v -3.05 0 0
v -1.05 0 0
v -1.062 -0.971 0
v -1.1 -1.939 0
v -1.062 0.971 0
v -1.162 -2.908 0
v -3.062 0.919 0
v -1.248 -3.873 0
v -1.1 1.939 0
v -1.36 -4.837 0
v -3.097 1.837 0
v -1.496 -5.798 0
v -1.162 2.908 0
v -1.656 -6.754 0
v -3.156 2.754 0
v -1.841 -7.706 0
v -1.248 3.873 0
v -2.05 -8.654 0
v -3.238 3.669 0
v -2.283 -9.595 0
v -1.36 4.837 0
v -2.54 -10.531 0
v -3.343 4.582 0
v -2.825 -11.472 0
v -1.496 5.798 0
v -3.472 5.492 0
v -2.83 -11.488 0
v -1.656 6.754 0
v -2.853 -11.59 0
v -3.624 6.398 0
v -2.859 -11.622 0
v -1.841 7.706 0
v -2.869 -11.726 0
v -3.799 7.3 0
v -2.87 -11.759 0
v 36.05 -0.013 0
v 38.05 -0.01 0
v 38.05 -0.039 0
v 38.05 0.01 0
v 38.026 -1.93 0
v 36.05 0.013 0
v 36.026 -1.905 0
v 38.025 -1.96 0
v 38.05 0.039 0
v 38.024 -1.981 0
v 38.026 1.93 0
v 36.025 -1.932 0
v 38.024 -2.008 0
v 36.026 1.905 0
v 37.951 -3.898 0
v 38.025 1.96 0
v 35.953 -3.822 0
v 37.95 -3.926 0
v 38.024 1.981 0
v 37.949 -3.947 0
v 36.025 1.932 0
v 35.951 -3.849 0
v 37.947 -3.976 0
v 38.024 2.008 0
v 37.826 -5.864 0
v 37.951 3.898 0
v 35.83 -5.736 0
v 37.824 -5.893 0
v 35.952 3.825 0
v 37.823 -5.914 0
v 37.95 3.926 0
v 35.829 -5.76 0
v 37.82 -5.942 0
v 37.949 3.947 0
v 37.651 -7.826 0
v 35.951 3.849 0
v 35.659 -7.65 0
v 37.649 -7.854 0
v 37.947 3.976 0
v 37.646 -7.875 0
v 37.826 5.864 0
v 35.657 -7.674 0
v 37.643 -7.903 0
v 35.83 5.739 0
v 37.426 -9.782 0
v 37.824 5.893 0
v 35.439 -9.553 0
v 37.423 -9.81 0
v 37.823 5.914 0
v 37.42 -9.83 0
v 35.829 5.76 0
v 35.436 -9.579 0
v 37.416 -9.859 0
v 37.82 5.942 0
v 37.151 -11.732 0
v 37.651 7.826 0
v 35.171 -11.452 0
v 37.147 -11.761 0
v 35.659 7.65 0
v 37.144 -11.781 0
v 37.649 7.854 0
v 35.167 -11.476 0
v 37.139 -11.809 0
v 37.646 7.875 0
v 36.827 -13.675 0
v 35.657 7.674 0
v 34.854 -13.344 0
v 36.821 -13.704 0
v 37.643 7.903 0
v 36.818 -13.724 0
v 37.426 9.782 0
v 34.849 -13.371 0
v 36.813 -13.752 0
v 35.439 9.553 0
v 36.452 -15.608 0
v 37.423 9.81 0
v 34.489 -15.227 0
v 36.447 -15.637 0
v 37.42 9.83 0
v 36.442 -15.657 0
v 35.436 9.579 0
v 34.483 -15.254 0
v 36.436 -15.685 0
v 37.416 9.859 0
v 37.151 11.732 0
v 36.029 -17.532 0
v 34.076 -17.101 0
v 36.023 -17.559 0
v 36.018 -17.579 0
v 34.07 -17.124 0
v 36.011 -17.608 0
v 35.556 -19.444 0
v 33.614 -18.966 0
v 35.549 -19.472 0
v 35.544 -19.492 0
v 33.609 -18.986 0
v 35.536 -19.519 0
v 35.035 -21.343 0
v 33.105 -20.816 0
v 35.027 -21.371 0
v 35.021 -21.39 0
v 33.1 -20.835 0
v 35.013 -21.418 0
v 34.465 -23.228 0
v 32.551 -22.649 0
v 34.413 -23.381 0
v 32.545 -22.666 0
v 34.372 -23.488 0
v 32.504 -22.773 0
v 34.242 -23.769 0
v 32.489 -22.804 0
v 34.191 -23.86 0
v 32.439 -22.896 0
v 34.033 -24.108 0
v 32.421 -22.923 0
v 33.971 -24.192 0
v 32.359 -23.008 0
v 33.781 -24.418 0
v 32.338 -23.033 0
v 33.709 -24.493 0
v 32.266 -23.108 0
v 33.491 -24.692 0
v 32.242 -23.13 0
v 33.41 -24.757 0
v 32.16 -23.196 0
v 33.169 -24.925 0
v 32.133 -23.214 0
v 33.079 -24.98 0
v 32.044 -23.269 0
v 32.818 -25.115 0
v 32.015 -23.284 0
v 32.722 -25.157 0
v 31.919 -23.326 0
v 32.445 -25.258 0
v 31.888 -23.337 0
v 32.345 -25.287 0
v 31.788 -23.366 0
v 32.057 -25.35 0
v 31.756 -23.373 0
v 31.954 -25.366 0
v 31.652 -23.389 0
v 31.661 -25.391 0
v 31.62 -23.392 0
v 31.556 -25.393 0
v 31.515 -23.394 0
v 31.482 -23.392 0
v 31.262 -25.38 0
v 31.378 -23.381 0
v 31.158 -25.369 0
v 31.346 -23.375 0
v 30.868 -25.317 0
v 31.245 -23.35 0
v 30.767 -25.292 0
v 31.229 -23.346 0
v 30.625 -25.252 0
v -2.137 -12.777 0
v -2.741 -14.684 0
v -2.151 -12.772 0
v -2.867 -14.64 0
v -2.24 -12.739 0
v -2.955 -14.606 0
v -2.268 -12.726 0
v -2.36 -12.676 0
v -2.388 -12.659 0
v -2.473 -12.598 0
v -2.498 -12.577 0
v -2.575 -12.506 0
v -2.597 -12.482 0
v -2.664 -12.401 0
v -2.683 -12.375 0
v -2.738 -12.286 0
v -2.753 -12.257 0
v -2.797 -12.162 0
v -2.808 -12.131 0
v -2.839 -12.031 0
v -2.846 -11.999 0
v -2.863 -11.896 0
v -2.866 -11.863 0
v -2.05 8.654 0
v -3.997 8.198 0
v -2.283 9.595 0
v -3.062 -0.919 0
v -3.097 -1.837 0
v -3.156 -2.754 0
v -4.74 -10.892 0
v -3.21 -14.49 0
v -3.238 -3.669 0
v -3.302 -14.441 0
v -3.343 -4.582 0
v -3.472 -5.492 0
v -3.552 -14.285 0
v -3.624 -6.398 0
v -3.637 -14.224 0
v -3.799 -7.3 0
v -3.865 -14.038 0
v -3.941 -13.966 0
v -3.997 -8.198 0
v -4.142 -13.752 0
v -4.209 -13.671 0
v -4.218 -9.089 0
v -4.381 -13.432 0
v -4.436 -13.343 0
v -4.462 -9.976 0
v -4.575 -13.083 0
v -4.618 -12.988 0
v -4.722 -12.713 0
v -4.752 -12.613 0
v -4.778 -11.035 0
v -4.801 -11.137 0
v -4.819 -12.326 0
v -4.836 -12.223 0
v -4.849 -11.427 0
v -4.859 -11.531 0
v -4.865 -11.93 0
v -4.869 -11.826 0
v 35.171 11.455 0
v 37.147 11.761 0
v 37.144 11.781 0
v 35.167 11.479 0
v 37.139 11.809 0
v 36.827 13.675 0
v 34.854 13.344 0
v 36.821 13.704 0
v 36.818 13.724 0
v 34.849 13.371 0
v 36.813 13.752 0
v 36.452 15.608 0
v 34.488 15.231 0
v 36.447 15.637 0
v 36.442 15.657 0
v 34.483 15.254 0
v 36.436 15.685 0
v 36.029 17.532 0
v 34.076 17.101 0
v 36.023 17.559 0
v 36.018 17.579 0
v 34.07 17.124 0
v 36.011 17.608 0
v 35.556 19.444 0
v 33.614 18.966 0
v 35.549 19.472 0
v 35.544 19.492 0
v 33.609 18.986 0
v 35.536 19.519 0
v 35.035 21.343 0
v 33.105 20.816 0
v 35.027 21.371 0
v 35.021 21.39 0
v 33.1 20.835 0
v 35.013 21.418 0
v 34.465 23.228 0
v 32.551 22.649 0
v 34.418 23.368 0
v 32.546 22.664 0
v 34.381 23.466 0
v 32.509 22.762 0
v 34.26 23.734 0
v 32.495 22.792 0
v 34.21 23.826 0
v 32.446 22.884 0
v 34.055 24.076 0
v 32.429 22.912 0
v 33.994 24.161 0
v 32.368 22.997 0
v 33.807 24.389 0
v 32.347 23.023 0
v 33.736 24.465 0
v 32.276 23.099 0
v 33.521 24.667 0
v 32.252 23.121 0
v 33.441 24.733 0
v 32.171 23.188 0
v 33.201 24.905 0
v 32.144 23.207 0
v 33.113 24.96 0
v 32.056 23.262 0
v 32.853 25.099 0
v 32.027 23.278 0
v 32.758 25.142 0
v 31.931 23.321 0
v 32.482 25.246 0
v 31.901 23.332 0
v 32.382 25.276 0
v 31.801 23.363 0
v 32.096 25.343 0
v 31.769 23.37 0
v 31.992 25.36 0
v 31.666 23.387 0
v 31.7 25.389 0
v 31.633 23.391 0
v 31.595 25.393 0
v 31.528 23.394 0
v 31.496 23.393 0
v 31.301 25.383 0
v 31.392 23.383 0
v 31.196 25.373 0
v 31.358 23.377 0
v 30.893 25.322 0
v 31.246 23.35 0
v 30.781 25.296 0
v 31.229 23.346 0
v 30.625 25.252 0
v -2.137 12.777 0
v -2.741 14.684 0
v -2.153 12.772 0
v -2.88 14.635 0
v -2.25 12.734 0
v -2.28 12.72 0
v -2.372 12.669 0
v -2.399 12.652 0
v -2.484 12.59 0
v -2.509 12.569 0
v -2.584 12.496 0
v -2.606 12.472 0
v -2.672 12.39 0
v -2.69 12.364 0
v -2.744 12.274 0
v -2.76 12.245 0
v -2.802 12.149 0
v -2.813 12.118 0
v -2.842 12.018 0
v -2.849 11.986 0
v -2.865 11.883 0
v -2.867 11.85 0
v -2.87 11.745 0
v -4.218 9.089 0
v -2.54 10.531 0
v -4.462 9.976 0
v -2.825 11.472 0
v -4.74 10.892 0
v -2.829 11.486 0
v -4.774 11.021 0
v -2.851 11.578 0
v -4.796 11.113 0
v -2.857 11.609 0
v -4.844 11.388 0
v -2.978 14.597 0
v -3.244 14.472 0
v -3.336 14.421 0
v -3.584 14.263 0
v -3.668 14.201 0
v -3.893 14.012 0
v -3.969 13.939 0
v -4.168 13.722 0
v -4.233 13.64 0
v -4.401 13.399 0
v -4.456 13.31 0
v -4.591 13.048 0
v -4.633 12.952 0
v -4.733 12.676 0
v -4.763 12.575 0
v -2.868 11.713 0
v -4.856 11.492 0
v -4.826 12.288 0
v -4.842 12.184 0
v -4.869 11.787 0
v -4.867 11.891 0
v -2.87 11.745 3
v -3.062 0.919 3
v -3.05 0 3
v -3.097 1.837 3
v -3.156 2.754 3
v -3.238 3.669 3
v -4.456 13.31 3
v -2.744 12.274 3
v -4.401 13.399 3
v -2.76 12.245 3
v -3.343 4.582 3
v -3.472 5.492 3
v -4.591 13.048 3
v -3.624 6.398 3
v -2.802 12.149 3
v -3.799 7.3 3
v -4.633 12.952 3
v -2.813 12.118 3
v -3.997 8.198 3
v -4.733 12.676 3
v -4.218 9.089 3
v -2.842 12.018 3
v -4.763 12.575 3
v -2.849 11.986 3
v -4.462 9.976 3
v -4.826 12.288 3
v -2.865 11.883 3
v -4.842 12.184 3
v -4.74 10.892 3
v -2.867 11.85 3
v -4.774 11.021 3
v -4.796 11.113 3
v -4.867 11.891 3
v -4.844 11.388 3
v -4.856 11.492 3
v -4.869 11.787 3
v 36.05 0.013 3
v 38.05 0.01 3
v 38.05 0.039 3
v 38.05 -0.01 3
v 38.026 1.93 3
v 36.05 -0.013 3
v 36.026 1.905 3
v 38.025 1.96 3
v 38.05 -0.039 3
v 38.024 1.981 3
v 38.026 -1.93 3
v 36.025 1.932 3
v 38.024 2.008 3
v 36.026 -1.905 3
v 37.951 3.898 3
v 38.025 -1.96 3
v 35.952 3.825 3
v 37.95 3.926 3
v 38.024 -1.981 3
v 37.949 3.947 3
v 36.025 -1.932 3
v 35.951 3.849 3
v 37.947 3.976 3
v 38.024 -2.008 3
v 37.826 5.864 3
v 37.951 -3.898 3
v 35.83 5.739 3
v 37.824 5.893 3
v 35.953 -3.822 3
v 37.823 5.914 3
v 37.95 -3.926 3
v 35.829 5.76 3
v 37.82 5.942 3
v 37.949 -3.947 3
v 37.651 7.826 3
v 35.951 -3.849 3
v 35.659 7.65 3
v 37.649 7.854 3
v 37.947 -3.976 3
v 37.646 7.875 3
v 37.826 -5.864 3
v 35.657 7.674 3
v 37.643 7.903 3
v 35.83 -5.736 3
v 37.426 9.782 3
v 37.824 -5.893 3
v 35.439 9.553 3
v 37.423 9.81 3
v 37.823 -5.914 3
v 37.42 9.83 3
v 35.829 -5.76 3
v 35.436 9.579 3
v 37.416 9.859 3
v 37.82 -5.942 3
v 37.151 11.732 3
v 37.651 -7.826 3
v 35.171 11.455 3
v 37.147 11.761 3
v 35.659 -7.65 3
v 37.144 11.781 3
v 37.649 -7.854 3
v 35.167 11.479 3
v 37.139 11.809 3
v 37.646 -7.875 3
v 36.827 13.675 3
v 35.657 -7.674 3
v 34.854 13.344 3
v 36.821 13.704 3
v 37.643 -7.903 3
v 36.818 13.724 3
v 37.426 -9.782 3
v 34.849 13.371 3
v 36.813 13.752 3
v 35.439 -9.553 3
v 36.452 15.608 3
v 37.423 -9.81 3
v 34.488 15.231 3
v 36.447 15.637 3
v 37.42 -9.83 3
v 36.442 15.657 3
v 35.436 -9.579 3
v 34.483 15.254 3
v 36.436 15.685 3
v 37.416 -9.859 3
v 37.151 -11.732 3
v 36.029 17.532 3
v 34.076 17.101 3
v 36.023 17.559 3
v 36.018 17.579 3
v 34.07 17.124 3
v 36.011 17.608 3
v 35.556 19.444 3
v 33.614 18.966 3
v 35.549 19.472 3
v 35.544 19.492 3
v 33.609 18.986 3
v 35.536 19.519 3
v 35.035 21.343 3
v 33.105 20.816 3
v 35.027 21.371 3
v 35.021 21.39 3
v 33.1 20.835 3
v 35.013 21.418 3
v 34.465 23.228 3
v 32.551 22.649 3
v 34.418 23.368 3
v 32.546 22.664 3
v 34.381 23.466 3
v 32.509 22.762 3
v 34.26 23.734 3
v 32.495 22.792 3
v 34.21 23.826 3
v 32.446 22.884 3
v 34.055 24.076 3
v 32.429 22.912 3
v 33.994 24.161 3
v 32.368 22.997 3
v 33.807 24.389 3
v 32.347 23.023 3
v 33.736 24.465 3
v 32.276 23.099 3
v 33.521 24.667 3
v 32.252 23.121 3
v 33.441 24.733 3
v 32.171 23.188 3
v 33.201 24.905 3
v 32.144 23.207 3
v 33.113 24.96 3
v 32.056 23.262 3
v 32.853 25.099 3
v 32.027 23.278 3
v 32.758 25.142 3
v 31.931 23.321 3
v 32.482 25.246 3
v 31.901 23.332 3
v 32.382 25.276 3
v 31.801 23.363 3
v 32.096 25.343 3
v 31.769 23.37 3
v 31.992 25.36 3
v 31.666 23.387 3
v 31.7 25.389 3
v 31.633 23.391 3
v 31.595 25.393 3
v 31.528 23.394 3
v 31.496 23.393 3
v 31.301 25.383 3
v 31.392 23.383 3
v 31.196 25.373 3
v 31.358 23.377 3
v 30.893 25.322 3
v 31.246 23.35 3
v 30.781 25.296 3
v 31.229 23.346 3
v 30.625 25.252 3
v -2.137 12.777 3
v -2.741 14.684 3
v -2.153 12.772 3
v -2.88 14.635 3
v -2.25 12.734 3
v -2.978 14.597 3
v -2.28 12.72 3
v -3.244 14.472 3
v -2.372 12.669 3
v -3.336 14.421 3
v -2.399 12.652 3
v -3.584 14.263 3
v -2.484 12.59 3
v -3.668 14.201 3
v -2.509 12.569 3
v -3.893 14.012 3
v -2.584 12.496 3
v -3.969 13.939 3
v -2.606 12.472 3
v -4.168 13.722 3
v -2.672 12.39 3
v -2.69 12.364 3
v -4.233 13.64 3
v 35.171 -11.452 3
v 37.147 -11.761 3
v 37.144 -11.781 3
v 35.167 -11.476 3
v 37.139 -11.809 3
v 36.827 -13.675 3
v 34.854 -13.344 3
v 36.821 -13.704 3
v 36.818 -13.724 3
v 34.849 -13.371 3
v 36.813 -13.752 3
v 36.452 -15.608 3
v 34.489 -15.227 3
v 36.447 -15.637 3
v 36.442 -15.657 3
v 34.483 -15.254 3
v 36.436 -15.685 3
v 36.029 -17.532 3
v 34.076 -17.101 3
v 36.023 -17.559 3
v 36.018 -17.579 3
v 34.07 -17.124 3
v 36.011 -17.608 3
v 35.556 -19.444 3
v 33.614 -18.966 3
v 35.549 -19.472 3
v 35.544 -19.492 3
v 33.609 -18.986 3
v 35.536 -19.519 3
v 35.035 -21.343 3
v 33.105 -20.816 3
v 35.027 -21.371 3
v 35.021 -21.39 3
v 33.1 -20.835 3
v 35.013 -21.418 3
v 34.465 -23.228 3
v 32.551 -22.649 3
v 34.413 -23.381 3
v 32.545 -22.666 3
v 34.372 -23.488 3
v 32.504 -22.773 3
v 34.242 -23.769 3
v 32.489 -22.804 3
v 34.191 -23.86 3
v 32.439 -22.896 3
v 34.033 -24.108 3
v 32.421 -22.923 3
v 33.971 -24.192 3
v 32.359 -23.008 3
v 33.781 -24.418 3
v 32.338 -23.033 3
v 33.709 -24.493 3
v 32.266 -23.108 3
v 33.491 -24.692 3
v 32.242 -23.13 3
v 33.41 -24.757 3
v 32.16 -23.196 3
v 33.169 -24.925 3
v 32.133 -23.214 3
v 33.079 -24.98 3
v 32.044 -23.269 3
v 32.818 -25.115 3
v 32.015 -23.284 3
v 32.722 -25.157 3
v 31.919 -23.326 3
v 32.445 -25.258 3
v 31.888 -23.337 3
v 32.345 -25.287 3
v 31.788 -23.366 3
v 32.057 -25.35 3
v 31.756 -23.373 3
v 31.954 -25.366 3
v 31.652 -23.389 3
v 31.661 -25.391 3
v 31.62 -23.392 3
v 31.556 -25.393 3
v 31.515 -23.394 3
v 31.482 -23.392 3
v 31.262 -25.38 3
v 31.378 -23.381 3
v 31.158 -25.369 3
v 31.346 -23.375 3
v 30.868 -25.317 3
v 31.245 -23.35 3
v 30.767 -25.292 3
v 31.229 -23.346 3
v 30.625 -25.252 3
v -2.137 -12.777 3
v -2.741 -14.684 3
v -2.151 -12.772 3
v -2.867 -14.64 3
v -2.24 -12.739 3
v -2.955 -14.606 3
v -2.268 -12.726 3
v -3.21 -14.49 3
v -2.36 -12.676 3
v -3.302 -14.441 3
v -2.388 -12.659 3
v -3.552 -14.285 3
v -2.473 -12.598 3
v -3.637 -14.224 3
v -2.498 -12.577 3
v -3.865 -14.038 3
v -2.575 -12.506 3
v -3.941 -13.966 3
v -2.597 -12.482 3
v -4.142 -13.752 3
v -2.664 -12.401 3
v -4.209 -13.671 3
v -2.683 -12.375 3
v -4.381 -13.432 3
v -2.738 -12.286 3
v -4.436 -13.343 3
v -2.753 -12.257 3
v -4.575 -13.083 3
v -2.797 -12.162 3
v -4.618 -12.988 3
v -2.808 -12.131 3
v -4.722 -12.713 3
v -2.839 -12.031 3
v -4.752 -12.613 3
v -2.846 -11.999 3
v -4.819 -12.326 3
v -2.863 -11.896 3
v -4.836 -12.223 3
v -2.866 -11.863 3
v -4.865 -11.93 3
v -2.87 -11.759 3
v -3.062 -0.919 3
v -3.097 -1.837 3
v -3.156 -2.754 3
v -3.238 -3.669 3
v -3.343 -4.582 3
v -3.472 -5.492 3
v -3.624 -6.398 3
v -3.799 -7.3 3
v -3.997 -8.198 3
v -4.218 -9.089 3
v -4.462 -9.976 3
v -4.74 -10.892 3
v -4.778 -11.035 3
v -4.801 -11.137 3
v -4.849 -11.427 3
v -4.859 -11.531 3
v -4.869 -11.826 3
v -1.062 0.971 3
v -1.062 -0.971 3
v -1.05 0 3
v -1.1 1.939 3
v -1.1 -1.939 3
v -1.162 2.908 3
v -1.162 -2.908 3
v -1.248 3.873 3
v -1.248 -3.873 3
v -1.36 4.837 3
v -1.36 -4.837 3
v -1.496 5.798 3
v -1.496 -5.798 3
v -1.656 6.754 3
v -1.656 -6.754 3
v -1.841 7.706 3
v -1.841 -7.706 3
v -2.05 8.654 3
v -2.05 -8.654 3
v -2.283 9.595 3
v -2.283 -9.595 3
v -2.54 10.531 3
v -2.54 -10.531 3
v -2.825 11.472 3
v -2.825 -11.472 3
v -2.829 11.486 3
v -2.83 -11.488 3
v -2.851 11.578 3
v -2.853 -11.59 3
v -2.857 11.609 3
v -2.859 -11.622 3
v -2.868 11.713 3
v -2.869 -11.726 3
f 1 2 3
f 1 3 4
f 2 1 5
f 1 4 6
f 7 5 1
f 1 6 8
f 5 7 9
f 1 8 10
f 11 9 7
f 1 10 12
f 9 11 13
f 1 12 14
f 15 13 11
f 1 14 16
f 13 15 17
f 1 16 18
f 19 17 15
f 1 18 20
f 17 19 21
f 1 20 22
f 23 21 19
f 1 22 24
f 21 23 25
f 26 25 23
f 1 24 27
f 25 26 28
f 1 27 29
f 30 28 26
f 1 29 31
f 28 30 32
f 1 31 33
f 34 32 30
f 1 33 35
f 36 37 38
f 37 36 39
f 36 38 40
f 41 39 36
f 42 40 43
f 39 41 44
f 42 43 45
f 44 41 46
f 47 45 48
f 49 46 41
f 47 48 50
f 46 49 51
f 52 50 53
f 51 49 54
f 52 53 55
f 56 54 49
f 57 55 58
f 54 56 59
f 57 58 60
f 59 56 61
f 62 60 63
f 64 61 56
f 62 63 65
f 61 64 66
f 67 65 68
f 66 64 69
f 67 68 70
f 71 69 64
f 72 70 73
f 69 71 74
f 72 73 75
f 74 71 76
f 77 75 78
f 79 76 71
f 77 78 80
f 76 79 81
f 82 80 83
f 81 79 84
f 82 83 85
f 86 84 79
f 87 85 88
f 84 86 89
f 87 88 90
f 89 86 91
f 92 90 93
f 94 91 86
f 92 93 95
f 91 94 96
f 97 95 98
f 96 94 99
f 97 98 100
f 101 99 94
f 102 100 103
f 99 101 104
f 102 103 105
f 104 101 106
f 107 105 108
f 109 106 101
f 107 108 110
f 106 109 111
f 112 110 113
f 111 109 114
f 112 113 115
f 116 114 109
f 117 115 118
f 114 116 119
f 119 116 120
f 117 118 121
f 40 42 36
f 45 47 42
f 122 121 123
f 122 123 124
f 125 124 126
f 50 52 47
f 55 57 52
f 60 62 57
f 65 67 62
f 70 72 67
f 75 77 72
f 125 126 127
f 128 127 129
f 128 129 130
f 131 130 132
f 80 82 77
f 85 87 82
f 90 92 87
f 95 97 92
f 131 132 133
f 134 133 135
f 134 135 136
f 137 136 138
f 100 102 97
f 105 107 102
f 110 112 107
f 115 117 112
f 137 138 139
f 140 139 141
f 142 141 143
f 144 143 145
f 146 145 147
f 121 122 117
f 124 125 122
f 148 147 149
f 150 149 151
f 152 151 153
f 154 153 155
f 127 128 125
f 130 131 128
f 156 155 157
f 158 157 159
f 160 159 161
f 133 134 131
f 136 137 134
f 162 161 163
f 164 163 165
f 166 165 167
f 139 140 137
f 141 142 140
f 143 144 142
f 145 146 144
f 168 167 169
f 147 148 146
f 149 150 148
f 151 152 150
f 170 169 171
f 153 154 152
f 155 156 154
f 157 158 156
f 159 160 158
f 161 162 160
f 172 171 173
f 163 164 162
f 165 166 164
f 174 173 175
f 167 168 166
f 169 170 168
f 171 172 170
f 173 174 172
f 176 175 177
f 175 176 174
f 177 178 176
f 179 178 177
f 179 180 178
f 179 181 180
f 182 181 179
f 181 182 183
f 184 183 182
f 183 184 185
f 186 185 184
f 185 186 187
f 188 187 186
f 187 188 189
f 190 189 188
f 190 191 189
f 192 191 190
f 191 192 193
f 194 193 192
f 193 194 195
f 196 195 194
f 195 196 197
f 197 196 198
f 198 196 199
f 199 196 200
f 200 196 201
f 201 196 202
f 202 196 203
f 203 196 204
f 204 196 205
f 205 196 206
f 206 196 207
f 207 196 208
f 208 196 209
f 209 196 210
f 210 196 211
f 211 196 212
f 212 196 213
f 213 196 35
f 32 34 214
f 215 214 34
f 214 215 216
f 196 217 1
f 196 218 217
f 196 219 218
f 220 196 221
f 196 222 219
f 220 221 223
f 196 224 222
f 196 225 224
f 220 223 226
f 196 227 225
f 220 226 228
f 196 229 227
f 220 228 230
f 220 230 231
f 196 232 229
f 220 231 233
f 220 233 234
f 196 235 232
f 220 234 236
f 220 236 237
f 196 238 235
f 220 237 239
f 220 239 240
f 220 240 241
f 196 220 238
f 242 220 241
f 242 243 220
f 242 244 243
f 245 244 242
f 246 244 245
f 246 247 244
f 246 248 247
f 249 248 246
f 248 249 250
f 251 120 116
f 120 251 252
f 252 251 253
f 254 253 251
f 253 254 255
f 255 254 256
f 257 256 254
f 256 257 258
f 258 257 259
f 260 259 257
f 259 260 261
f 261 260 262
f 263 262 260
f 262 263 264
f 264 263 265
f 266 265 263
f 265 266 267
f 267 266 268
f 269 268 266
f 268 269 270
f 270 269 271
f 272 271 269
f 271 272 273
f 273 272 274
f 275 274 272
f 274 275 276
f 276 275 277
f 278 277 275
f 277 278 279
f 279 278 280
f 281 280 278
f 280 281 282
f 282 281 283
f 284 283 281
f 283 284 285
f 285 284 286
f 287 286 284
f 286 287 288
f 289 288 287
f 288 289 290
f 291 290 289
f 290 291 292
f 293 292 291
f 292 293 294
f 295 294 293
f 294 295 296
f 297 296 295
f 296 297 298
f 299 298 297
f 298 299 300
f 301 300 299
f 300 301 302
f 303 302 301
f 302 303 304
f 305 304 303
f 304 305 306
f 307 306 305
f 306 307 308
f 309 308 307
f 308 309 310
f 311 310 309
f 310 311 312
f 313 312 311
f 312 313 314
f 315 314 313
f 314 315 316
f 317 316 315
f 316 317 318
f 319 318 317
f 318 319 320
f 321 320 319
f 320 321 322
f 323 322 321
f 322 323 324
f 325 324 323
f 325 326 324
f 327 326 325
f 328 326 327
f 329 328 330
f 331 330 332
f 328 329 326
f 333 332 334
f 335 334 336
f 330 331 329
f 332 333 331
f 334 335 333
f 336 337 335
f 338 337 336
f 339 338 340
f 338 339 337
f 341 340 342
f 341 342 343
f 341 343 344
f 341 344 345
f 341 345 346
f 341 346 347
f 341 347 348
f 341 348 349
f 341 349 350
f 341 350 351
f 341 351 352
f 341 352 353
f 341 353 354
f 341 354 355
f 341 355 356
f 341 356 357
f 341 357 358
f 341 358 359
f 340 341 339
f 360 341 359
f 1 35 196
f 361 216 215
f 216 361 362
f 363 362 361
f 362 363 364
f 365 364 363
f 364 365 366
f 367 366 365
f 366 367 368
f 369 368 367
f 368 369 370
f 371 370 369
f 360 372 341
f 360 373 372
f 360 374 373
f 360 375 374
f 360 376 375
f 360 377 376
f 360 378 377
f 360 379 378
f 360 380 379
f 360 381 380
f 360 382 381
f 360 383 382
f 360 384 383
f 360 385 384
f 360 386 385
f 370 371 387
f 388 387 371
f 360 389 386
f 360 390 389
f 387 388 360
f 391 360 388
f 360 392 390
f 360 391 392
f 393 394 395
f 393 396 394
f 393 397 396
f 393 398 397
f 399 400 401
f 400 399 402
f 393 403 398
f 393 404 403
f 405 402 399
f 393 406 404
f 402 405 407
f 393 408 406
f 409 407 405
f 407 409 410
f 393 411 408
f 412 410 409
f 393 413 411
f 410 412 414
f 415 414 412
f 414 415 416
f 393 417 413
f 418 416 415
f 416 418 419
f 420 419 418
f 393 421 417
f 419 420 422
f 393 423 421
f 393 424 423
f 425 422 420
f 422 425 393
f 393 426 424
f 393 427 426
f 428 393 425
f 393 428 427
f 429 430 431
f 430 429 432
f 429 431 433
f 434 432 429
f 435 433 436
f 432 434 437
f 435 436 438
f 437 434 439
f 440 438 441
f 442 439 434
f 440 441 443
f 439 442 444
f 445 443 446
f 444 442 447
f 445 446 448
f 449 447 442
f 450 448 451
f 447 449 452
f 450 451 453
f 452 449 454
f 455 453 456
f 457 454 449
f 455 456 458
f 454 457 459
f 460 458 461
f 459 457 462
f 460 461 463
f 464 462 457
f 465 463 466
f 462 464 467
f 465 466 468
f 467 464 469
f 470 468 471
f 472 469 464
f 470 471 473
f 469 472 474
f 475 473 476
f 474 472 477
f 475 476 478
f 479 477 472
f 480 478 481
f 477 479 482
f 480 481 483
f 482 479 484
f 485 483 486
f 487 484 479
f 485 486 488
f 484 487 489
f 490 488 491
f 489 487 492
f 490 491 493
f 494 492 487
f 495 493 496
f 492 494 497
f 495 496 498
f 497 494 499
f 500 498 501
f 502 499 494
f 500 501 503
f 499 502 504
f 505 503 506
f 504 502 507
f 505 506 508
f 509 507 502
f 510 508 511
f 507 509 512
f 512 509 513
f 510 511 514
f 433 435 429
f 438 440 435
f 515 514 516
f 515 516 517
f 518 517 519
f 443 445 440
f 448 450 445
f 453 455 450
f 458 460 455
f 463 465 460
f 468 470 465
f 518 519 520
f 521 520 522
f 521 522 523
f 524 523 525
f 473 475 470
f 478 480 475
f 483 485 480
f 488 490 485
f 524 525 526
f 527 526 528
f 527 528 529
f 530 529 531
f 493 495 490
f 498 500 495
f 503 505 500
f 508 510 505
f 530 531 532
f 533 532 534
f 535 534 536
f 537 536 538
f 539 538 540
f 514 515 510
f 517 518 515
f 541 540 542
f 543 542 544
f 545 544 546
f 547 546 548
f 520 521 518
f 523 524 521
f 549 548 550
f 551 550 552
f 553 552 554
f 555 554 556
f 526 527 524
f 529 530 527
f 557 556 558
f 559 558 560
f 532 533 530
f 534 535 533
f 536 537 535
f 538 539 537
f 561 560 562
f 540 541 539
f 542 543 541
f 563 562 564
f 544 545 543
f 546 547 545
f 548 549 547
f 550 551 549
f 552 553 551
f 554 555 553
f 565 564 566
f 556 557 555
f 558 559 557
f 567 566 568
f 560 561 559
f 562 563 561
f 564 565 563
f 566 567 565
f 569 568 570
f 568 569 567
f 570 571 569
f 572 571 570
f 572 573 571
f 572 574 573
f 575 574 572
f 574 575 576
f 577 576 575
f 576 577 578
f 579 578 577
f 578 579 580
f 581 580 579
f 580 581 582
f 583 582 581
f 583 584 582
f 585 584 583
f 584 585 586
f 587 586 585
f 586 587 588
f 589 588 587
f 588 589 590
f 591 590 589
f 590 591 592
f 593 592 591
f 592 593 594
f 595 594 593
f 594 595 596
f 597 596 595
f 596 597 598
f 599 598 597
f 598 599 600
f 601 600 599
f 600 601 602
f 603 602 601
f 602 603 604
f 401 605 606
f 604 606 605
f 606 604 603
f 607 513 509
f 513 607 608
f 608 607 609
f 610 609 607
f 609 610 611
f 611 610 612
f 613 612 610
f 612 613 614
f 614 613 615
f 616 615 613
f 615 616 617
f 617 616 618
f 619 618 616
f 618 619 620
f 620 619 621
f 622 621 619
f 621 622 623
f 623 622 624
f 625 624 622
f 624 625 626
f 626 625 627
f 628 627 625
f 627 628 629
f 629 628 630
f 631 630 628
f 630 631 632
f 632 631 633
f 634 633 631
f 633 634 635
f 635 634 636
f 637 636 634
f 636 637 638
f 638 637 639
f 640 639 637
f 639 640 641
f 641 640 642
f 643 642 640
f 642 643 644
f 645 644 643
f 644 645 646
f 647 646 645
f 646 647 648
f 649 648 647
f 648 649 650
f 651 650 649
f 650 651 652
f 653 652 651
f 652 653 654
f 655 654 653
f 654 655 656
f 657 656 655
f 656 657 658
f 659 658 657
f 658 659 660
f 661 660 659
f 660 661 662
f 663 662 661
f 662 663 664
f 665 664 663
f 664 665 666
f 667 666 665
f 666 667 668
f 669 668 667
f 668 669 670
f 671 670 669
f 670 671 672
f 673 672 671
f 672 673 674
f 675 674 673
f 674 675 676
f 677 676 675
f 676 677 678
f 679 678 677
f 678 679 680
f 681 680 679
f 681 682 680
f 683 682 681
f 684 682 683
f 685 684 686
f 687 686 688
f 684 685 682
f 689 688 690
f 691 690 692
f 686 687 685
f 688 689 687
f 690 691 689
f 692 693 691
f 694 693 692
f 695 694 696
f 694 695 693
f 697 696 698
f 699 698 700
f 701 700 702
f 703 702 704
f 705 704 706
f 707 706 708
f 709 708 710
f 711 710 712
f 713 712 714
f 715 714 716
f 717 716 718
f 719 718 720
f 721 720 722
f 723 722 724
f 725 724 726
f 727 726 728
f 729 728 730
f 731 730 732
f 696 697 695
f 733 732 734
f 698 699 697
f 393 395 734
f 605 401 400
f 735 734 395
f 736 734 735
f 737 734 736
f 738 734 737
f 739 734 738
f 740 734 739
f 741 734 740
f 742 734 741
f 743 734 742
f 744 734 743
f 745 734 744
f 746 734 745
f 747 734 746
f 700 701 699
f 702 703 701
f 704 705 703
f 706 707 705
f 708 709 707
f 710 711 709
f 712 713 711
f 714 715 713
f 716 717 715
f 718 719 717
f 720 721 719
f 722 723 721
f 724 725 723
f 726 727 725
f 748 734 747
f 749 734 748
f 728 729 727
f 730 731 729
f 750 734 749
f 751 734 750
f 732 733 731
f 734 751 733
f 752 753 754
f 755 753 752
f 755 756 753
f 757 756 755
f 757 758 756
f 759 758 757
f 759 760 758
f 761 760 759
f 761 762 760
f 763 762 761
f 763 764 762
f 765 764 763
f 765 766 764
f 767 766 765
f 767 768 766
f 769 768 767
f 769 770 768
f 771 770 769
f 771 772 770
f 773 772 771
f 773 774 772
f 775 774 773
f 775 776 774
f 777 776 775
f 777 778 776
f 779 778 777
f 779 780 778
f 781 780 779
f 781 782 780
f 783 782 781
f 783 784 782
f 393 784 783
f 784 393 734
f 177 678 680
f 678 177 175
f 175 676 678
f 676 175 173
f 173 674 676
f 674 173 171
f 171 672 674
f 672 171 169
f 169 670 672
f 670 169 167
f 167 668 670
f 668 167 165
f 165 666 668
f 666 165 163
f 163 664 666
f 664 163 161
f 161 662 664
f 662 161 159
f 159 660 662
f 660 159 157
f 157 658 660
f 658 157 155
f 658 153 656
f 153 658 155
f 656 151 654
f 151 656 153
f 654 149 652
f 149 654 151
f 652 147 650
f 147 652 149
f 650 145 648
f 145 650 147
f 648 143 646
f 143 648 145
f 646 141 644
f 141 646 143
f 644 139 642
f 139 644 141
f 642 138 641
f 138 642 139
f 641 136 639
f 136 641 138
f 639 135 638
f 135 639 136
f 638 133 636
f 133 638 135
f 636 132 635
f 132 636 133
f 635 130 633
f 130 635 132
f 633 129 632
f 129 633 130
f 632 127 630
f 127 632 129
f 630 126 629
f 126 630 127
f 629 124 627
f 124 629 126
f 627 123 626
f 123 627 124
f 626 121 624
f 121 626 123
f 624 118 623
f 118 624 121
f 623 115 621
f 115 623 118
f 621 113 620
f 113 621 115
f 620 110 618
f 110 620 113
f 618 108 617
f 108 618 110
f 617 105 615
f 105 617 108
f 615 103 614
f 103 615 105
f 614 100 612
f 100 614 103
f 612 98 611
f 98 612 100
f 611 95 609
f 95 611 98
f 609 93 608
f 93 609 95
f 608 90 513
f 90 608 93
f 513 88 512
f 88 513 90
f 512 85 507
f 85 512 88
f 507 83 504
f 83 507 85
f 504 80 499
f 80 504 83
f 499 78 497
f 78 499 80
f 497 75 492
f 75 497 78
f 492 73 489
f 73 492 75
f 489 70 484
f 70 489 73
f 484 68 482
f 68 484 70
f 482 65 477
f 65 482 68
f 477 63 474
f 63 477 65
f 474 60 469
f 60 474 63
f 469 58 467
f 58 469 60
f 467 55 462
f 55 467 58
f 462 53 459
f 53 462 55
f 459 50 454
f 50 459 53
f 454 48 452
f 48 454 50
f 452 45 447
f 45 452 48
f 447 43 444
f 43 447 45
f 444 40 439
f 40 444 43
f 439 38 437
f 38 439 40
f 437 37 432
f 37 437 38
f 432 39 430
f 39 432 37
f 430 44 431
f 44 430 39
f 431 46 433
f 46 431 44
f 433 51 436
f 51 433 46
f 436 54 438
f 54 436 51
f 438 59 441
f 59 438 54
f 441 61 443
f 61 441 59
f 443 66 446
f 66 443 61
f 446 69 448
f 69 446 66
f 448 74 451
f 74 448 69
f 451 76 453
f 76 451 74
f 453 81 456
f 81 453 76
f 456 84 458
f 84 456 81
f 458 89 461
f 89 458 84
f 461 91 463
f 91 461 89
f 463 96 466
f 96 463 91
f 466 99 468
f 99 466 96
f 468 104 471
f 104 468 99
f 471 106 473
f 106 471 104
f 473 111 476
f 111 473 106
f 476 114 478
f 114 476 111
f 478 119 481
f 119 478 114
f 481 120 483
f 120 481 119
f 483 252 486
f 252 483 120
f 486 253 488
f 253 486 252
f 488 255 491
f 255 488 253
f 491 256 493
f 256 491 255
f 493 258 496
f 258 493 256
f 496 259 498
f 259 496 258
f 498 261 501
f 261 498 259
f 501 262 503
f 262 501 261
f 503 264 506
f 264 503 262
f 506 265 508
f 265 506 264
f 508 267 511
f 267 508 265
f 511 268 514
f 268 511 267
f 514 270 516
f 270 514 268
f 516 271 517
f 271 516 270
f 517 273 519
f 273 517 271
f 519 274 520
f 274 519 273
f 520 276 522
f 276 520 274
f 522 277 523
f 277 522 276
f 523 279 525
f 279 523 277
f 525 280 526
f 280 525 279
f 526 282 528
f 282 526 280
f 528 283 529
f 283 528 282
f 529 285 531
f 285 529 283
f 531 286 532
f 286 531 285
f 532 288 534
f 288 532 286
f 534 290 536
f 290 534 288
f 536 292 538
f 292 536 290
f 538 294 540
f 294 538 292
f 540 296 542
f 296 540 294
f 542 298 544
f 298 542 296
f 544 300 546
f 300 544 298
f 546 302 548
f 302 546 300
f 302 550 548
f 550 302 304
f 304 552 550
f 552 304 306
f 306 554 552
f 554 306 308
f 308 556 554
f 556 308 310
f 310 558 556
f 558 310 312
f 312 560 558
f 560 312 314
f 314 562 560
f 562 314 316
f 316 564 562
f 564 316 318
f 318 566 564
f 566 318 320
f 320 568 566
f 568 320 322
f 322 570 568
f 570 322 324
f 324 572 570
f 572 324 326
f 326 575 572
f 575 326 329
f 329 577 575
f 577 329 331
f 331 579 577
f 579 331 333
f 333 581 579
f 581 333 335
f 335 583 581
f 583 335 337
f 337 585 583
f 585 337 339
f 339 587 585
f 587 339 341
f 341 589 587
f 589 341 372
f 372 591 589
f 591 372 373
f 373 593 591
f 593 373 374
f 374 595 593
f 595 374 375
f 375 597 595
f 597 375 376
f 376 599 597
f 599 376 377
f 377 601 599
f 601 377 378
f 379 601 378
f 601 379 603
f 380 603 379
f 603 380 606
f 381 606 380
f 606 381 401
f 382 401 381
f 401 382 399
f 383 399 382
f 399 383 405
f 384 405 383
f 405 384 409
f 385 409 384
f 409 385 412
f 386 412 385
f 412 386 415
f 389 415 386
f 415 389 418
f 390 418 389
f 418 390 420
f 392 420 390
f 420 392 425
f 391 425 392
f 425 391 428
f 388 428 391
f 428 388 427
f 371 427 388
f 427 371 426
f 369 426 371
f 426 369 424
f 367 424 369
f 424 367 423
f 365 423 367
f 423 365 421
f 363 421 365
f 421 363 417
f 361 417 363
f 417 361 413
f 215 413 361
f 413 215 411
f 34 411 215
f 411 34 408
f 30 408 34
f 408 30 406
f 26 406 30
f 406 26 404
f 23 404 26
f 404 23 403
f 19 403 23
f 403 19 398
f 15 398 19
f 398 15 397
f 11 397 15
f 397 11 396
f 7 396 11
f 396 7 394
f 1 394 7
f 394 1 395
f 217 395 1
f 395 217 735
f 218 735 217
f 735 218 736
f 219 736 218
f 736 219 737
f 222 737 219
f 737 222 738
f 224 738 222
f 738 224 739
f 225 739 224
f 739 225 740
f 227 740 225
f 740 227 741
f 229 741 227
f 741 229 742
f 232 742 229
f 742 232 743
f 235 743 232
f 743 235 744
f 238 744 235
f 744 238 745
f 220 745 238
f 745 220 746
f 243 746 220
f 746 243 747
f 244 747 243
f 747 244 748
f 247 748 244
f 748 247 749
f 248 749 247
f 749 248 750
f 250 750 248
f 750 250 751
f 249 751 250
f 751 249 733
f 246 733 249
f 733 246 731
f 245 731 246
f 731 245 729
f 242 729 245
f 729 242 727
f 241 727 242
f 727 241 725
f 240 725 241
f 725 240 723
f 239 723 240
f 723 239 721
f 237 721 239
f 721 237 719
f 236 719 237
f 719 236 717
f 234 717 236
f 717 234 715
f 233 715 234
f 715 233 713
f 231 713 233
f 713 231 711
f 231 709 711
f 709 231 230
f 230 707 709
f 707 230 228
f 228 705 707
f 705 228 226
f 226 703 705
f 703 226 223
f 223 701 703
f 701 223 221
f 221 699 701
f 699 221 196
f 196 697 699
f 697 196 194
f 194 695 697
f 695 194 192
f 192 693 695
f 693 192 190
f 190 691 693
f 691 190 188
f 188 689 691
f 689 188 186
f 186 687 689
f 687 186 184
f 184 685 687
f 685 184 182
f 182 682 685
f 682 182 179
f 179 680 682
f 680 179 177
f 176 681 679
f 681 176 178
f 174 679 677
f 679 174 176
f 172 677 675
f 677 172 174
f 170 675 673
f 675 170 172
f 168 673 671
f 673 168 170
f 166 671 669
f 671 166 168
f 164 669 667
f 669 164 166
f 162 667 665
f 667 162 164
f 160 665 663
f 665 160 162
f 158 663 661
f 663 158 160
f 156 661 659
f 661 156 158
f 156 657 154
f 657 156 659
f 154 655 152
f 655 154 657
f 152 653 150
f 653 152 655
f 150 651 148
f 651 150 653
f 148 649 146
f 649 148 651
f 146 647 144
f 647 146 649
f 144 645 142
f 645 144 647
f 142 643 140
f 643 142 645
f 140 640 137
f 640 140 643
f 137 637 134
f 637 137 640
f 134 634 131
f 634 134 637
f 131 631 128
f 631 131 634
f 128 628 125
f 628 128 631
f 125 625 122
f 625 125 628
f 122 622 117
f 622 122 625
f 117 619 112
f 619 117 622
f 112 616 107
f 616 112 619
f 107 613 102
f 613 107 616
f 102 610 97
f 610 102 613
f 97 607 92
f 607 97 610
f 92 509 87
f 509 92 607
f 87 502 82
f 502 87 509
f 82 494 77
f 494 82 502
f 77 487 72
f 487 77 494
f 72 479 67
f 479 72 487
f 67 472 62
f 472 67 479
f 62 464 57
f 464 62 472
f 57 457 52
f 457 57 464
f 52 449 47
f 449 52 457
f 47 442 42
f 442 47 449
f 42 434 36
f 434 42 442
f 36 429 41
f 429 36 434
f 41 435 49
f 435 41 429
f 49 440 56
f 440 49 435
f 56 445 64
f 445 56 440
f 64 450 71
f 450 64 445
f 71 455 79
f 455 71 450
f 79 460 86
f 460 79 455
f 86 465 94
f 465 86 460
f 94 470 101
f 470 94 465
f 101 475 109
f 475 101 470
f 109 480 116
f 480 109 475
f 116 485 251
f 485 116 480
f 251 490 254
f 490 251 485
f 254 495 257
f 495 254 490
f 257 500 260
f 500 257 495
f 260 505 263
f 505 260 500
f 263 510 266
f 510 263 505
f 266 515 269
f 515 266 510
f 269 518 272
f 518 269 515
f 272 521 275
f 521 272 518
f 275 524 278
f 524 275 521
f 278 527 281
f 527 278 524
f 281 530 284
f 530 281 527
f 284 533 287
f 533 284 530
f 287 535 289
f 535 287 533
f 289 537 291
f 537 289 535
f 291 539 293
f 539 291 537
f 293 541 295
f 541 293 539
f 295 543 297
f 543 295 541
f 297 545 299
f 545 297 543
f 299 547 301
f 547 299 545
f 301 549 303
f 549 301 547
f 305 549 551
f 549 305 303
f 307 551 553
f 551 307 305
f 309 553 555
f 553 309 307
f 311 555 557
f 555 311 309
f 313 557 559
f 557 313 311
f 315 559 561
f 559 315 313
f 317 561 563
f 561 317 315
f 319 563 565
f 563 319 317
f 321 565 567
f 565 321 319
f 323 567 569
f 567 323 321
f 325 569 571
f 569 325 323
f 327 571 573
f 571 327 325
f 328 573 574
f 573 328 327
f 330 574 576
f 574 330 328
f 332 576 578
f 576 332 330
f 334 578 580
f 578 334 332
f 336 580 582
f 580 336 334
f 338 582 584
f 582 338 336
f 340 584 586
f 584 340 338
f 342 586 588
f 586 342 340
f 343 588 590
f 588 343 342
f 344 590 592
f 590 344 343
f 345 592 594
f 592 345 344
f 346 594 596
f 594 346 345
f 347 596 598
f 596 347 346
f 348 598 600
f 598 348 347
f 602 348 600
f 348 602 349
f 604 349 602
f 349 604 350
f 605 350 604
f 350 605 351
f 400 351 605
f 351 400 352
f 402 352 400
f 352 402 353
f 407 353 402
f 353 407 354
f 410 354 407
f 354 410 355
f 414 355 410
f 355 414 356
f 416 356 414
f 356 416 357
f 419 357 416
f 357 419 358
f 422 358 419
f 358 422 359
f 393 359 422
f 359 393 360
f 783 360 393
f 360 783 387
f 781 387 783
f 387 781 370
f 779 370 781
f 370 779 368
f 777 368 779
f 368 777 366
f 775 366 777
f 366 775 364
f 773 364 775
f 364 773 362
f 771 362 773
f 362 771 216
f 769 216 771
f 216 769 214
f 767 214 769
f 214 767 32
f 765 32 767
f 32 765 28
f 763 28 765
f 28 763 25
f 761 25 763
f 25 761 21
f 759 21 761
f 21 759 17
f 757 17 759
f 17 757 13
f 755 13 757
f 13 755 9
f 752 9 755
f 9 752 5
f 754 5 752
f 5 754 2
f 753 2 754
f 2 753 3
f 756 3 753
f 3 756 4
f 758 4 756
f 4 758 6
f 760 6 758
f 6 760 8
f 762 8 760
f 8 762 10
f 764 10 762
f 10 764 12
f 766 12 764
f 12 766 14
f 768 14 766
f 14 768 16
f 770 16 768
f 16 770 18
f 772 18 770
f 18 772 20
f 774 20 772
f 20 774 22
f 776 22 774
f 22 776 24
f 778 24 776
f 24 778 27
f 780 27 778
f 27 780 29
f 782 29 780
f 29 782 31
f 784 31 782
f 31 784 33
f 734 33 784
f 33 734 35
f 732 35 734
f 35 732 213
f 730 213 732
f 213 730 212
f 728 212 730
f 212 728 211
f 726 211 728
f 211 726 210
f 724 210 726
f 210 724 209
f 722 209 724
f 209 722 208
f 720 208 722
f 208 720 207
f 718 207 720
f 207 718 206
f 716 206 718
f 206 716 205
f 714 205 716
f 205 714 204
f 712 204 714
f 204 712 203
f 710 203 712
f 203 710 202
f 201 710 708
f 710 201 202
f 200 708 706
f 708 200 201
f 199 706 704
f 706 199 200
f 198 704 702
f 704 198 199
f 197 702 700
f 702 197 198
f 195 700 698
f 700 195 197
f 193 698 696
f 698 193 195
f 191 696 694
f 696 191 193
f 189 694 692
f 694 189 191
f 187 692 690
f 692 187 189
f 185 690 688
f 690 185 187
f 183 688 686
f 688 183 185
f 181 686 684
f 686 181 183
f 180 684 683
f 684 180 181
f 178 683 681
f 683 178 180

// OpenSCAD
// file: parameters.scad
// =============================================================================
// Gen-BV — nightly 2026-10-10 (physics_scorer, honest magpylib watts)
// Fewer, wider-spaced poles: 6 Ø20 per rotor (12 of the 16) on an R57 ring over nine 35.2° bobbins (r 39–74 mm, 15.7 mm build). Wider pole pitch means less pole-to-pole leakage and bigger coils, but the electrical frequency drops 25 % and 4 Ø20 sit idle; diametric Ø5 assists lowered the score here, so none are fitted. The scorer puts it at about 62 % of Gen-BR.
// Clocking 0 deg (magnets N facing S) + D-flat keyed bore + index notch + flip-symmetric hole map.
// Windable 2-piece bobbin; turns = physics_scorer turns_fit; copper only between flanges.
// Steel back-iron: 2× Ø142 × 4.76 mm (3/16") mild-steel discs (steel_backiron_disc.dxf); magnets sit ON the steel
// (through-pockets) -> score with --back-iron. Night 2026-10-10.
// =============================================================================
topology            = "dual_rotor";

// --- Wire / winding (physics_scorer winding-fit) -------------------------------
wire_awg            = 26;
wire_od             = 0.45;     // insulated OD mm (bare 0.405)
fill_realistic      = 0.65;     // insulated-wire area / window (DENSE layered wind with a jig; scorer cap 0.65)
turns               = 518;       // = physics_scorer turns_fit (do NOT raise)
coil_former_type    = "bobbin";
coil_core_inset     = 15.66;     // radial copper build: hub = copper boundary inset by this
wind_build_axial    = 0.0;      // nothing proud of the flanges
wind_build_radial   = 0.0;

// --- Bobbin (base + lid) ---------------------------------------------------------
coil_id_r           = 39.00;    // copper boundary sector
coil_od_r           = 74.00;
span_deg            = 35.15;    // = pitch - 2*asin((wall+0.85)/coil_id_r) -> >=1.2 mm stator web
former_web          = 8.10;     // copper height between flanges (TALL copper: steel keeps Bz up)
flange_t            = 0.80;     // >= 0.8 mm FDM wall rule (tall winds push on the flanges)
wall                = 0.80;     // flange lip beyond copper
former_bare_h       = former_web + 2 * flange_t;
coil_envelope_h     = former_bare_h + 2 * wind_build_axial;
tab_w               = 7.0;
tab_len             = 7.0;
tab_h               = former_bare_h / 2;
pin_d               = 1.9;      // 1.75 mm filament locating pin
coil_mount_r        = coil_od_r + 0.2 + 4.0;
lead_y              = 1.6;
lead_slot_w         = 0.9;
lead_groove_d       = 0.6;

// --- Gap -------------------------------------------------------------------------
run_clear           = 0.50;     // rotor face -> flange
gap_spacer_h        = run_clear + wind_build_axial;
m2m                 = coil_envelope_h + 2 * run_clear;   // rotor face to rotor face (= gap_sleeve length)

// --- Stator ----------------------------------------------------------------------
coil_stations       = 9;
bay_clear           = 0.25;
stator_thick        = former_bare_h;                        // bobbins flush both faces
stator_od           = 166;
shaft_clear_stator  = 14.0;     // stator is static; gap sleeve OD 12 spins inside

// --- Rotor(s) --------------------------------------------------------------------
magnet_Br           = 1.43;     // N52
magnet_d_large      = 20.0;
magnet_h_large      = 5.0;      // one O20x5 per pocket
magnet_h_small      = 5.0;      // unused: no O5 pockets in this kit
halbach_magnetisation = "none";  // NO O5 assist magnets in this kit (scan: they lower the 4-pole score)
rotor_b_same_axis   = true;     // same-index magnets share one axis: N faces S across the gap
large_pocket_d      = 20.3;
small_pocket_d      = 5.3;
pocket_h            = 5.00;     // THROUGH the carrier: magnet back face sits on the steel disc (FLUSH seat: carrier = magnet height, magnet face level with the rotor face)
large_n             = 6;
R_large             = 57.0;
small_r_list        = [];       // no O5 pockets
carrier_od          = 142.0;
carrier_thick       = pocket_h;
hub_h               = 12.0;     // > steel_t + insert: radial set-screw clears the steel
hub_od              = 24.0;     // slim hub so the M4 brace rods fit at R~18 inside the coil ring
hub_insert_d        = 4.0;      // M3 heat-set insert, radial, bears on the D-flat
rotor_b_offset_deg  = 0.0;      // CLOCKING: magnets directly opposite
shaft_key           = "dflat";
dflat_depth         = 0.5;      // 8 mm shaft with 0.5 mm flat (7.5 across flat)
index_notch_d       = 3.0;

// --- Steel back-iron (buyable laser-cut) -------------------------------------------
steel_t             = 4.76;      // mild steel thickness (image method ignores it; sized from steel_flux.py so the return path stays well below saturation)
steel_center_hole   = 26.0;     // slips over the rotor hub (OD 24)
steel_od            = carrier_od;   // steel disc OD = rotor carrier OD

// --- Modular MAX interface ----------------------------------------------------------
shaft_bore          = 8.35;
dflat_x             = 4.0 - dflat_depth + (shaft_bore - 8.0) / 2;
bearing_d           = 21.85;
bearing_h           = 7.2;
m3_clear            = 3.5;
bolt_r_inner        = 30.0;     // M3 steel-disc clamp bolts (inside the magnet ring)
bolt_n_inner        = 4;
bolt_inner_angles   = [0, 90, 180, 270];
bolt_r_outer        = 66.0;     // second M3 steel-disc clamp ring
bolt_outer_angles   = [15, 165, 195, 345];
flange_bolt_r       = 77.0;     // frame rods: OUTSIDE the rotor OD (rotors spin inside them)
flange_bolt_n       = 9;
flange_bolt_offset  = 20.00;    // between coil stations -> never cuts a lead groove/tab
brace_r             = 18.0;
brace_d             = 4.3;      // temporary M4 jack rods (assembly only)
brace_n             = 4;
brace_angles        = [45, 135, 225, 315];          // flip-symmetric

spacer_pad_od       = 14.0;
spacer_pad_id       = m3_clear;
endbell_od          = 164.0;
endbell_thick       = 8.0;
endbell_shaft_clear = 10.0;
collar_h            = 10.0;
standoff_od         = 9.0;
frame_standoff_h    = run_clear + carrier_thick + hub_h + collar_h + 2.0;
sleeve_od           = 12.0;
plate_max_mm        = 410;

$fn = 64;
// main file
// Gen-BV — fit coupon (bay part): O20/O5 THROUGH pockets at carrier thickness (test on a steel offcut), 608 seat,
// D-flat bore, gap shim, and one bobbin-bay slice (bobbin footprint + bay_clear) to test former fit.
include <parameters.scad>;
$fn = 48;
// D-flat keyed bore: flat faces +X (angle 0 = magnet pocket 0 = index notch)
module dflat_bore(h) {
    intersection() {
        cylinder(d=shaft_bore, h=h);
        translate([-shaft_bore, -shaft_bore, 0]) cube([shaft_bore + dflat_x, 2*shaft_bore, h]);
    }
}
module sector_2d(r_in, r_out, ang) {
    polygon([
        for (a = [-ang/2 : ang/24 : ang/2]) [r_in*cos(a), r_in*sin(a)],
        for (a = [ang/2 : -ang/24 : -ang/2]) [r_out*cos(a), r_out*sin(a)]
    ]);
}
module footprint_2d() { offset(r=wall) sector_2d(coil_id_r, coil_od_r, span_deg); }
module hub_2d()       { offset(delta=-coil_core_inset) sector_2d(coil_id_r, coil_od_r, span_deg); }

// bay slice: 3 mm tall ring section of the stator bay around one footprint (tests bobbin drop-in fit)
translate([-coil_id_r, 0, 0]) difference() {
    linear_extrude(3) offset(r=bay_clear + 2) footprint_2d();
    translate([0, 0, -0.1]) linear_extrude(3.2) offset(r=bay_clear) footprint_2d();
}
